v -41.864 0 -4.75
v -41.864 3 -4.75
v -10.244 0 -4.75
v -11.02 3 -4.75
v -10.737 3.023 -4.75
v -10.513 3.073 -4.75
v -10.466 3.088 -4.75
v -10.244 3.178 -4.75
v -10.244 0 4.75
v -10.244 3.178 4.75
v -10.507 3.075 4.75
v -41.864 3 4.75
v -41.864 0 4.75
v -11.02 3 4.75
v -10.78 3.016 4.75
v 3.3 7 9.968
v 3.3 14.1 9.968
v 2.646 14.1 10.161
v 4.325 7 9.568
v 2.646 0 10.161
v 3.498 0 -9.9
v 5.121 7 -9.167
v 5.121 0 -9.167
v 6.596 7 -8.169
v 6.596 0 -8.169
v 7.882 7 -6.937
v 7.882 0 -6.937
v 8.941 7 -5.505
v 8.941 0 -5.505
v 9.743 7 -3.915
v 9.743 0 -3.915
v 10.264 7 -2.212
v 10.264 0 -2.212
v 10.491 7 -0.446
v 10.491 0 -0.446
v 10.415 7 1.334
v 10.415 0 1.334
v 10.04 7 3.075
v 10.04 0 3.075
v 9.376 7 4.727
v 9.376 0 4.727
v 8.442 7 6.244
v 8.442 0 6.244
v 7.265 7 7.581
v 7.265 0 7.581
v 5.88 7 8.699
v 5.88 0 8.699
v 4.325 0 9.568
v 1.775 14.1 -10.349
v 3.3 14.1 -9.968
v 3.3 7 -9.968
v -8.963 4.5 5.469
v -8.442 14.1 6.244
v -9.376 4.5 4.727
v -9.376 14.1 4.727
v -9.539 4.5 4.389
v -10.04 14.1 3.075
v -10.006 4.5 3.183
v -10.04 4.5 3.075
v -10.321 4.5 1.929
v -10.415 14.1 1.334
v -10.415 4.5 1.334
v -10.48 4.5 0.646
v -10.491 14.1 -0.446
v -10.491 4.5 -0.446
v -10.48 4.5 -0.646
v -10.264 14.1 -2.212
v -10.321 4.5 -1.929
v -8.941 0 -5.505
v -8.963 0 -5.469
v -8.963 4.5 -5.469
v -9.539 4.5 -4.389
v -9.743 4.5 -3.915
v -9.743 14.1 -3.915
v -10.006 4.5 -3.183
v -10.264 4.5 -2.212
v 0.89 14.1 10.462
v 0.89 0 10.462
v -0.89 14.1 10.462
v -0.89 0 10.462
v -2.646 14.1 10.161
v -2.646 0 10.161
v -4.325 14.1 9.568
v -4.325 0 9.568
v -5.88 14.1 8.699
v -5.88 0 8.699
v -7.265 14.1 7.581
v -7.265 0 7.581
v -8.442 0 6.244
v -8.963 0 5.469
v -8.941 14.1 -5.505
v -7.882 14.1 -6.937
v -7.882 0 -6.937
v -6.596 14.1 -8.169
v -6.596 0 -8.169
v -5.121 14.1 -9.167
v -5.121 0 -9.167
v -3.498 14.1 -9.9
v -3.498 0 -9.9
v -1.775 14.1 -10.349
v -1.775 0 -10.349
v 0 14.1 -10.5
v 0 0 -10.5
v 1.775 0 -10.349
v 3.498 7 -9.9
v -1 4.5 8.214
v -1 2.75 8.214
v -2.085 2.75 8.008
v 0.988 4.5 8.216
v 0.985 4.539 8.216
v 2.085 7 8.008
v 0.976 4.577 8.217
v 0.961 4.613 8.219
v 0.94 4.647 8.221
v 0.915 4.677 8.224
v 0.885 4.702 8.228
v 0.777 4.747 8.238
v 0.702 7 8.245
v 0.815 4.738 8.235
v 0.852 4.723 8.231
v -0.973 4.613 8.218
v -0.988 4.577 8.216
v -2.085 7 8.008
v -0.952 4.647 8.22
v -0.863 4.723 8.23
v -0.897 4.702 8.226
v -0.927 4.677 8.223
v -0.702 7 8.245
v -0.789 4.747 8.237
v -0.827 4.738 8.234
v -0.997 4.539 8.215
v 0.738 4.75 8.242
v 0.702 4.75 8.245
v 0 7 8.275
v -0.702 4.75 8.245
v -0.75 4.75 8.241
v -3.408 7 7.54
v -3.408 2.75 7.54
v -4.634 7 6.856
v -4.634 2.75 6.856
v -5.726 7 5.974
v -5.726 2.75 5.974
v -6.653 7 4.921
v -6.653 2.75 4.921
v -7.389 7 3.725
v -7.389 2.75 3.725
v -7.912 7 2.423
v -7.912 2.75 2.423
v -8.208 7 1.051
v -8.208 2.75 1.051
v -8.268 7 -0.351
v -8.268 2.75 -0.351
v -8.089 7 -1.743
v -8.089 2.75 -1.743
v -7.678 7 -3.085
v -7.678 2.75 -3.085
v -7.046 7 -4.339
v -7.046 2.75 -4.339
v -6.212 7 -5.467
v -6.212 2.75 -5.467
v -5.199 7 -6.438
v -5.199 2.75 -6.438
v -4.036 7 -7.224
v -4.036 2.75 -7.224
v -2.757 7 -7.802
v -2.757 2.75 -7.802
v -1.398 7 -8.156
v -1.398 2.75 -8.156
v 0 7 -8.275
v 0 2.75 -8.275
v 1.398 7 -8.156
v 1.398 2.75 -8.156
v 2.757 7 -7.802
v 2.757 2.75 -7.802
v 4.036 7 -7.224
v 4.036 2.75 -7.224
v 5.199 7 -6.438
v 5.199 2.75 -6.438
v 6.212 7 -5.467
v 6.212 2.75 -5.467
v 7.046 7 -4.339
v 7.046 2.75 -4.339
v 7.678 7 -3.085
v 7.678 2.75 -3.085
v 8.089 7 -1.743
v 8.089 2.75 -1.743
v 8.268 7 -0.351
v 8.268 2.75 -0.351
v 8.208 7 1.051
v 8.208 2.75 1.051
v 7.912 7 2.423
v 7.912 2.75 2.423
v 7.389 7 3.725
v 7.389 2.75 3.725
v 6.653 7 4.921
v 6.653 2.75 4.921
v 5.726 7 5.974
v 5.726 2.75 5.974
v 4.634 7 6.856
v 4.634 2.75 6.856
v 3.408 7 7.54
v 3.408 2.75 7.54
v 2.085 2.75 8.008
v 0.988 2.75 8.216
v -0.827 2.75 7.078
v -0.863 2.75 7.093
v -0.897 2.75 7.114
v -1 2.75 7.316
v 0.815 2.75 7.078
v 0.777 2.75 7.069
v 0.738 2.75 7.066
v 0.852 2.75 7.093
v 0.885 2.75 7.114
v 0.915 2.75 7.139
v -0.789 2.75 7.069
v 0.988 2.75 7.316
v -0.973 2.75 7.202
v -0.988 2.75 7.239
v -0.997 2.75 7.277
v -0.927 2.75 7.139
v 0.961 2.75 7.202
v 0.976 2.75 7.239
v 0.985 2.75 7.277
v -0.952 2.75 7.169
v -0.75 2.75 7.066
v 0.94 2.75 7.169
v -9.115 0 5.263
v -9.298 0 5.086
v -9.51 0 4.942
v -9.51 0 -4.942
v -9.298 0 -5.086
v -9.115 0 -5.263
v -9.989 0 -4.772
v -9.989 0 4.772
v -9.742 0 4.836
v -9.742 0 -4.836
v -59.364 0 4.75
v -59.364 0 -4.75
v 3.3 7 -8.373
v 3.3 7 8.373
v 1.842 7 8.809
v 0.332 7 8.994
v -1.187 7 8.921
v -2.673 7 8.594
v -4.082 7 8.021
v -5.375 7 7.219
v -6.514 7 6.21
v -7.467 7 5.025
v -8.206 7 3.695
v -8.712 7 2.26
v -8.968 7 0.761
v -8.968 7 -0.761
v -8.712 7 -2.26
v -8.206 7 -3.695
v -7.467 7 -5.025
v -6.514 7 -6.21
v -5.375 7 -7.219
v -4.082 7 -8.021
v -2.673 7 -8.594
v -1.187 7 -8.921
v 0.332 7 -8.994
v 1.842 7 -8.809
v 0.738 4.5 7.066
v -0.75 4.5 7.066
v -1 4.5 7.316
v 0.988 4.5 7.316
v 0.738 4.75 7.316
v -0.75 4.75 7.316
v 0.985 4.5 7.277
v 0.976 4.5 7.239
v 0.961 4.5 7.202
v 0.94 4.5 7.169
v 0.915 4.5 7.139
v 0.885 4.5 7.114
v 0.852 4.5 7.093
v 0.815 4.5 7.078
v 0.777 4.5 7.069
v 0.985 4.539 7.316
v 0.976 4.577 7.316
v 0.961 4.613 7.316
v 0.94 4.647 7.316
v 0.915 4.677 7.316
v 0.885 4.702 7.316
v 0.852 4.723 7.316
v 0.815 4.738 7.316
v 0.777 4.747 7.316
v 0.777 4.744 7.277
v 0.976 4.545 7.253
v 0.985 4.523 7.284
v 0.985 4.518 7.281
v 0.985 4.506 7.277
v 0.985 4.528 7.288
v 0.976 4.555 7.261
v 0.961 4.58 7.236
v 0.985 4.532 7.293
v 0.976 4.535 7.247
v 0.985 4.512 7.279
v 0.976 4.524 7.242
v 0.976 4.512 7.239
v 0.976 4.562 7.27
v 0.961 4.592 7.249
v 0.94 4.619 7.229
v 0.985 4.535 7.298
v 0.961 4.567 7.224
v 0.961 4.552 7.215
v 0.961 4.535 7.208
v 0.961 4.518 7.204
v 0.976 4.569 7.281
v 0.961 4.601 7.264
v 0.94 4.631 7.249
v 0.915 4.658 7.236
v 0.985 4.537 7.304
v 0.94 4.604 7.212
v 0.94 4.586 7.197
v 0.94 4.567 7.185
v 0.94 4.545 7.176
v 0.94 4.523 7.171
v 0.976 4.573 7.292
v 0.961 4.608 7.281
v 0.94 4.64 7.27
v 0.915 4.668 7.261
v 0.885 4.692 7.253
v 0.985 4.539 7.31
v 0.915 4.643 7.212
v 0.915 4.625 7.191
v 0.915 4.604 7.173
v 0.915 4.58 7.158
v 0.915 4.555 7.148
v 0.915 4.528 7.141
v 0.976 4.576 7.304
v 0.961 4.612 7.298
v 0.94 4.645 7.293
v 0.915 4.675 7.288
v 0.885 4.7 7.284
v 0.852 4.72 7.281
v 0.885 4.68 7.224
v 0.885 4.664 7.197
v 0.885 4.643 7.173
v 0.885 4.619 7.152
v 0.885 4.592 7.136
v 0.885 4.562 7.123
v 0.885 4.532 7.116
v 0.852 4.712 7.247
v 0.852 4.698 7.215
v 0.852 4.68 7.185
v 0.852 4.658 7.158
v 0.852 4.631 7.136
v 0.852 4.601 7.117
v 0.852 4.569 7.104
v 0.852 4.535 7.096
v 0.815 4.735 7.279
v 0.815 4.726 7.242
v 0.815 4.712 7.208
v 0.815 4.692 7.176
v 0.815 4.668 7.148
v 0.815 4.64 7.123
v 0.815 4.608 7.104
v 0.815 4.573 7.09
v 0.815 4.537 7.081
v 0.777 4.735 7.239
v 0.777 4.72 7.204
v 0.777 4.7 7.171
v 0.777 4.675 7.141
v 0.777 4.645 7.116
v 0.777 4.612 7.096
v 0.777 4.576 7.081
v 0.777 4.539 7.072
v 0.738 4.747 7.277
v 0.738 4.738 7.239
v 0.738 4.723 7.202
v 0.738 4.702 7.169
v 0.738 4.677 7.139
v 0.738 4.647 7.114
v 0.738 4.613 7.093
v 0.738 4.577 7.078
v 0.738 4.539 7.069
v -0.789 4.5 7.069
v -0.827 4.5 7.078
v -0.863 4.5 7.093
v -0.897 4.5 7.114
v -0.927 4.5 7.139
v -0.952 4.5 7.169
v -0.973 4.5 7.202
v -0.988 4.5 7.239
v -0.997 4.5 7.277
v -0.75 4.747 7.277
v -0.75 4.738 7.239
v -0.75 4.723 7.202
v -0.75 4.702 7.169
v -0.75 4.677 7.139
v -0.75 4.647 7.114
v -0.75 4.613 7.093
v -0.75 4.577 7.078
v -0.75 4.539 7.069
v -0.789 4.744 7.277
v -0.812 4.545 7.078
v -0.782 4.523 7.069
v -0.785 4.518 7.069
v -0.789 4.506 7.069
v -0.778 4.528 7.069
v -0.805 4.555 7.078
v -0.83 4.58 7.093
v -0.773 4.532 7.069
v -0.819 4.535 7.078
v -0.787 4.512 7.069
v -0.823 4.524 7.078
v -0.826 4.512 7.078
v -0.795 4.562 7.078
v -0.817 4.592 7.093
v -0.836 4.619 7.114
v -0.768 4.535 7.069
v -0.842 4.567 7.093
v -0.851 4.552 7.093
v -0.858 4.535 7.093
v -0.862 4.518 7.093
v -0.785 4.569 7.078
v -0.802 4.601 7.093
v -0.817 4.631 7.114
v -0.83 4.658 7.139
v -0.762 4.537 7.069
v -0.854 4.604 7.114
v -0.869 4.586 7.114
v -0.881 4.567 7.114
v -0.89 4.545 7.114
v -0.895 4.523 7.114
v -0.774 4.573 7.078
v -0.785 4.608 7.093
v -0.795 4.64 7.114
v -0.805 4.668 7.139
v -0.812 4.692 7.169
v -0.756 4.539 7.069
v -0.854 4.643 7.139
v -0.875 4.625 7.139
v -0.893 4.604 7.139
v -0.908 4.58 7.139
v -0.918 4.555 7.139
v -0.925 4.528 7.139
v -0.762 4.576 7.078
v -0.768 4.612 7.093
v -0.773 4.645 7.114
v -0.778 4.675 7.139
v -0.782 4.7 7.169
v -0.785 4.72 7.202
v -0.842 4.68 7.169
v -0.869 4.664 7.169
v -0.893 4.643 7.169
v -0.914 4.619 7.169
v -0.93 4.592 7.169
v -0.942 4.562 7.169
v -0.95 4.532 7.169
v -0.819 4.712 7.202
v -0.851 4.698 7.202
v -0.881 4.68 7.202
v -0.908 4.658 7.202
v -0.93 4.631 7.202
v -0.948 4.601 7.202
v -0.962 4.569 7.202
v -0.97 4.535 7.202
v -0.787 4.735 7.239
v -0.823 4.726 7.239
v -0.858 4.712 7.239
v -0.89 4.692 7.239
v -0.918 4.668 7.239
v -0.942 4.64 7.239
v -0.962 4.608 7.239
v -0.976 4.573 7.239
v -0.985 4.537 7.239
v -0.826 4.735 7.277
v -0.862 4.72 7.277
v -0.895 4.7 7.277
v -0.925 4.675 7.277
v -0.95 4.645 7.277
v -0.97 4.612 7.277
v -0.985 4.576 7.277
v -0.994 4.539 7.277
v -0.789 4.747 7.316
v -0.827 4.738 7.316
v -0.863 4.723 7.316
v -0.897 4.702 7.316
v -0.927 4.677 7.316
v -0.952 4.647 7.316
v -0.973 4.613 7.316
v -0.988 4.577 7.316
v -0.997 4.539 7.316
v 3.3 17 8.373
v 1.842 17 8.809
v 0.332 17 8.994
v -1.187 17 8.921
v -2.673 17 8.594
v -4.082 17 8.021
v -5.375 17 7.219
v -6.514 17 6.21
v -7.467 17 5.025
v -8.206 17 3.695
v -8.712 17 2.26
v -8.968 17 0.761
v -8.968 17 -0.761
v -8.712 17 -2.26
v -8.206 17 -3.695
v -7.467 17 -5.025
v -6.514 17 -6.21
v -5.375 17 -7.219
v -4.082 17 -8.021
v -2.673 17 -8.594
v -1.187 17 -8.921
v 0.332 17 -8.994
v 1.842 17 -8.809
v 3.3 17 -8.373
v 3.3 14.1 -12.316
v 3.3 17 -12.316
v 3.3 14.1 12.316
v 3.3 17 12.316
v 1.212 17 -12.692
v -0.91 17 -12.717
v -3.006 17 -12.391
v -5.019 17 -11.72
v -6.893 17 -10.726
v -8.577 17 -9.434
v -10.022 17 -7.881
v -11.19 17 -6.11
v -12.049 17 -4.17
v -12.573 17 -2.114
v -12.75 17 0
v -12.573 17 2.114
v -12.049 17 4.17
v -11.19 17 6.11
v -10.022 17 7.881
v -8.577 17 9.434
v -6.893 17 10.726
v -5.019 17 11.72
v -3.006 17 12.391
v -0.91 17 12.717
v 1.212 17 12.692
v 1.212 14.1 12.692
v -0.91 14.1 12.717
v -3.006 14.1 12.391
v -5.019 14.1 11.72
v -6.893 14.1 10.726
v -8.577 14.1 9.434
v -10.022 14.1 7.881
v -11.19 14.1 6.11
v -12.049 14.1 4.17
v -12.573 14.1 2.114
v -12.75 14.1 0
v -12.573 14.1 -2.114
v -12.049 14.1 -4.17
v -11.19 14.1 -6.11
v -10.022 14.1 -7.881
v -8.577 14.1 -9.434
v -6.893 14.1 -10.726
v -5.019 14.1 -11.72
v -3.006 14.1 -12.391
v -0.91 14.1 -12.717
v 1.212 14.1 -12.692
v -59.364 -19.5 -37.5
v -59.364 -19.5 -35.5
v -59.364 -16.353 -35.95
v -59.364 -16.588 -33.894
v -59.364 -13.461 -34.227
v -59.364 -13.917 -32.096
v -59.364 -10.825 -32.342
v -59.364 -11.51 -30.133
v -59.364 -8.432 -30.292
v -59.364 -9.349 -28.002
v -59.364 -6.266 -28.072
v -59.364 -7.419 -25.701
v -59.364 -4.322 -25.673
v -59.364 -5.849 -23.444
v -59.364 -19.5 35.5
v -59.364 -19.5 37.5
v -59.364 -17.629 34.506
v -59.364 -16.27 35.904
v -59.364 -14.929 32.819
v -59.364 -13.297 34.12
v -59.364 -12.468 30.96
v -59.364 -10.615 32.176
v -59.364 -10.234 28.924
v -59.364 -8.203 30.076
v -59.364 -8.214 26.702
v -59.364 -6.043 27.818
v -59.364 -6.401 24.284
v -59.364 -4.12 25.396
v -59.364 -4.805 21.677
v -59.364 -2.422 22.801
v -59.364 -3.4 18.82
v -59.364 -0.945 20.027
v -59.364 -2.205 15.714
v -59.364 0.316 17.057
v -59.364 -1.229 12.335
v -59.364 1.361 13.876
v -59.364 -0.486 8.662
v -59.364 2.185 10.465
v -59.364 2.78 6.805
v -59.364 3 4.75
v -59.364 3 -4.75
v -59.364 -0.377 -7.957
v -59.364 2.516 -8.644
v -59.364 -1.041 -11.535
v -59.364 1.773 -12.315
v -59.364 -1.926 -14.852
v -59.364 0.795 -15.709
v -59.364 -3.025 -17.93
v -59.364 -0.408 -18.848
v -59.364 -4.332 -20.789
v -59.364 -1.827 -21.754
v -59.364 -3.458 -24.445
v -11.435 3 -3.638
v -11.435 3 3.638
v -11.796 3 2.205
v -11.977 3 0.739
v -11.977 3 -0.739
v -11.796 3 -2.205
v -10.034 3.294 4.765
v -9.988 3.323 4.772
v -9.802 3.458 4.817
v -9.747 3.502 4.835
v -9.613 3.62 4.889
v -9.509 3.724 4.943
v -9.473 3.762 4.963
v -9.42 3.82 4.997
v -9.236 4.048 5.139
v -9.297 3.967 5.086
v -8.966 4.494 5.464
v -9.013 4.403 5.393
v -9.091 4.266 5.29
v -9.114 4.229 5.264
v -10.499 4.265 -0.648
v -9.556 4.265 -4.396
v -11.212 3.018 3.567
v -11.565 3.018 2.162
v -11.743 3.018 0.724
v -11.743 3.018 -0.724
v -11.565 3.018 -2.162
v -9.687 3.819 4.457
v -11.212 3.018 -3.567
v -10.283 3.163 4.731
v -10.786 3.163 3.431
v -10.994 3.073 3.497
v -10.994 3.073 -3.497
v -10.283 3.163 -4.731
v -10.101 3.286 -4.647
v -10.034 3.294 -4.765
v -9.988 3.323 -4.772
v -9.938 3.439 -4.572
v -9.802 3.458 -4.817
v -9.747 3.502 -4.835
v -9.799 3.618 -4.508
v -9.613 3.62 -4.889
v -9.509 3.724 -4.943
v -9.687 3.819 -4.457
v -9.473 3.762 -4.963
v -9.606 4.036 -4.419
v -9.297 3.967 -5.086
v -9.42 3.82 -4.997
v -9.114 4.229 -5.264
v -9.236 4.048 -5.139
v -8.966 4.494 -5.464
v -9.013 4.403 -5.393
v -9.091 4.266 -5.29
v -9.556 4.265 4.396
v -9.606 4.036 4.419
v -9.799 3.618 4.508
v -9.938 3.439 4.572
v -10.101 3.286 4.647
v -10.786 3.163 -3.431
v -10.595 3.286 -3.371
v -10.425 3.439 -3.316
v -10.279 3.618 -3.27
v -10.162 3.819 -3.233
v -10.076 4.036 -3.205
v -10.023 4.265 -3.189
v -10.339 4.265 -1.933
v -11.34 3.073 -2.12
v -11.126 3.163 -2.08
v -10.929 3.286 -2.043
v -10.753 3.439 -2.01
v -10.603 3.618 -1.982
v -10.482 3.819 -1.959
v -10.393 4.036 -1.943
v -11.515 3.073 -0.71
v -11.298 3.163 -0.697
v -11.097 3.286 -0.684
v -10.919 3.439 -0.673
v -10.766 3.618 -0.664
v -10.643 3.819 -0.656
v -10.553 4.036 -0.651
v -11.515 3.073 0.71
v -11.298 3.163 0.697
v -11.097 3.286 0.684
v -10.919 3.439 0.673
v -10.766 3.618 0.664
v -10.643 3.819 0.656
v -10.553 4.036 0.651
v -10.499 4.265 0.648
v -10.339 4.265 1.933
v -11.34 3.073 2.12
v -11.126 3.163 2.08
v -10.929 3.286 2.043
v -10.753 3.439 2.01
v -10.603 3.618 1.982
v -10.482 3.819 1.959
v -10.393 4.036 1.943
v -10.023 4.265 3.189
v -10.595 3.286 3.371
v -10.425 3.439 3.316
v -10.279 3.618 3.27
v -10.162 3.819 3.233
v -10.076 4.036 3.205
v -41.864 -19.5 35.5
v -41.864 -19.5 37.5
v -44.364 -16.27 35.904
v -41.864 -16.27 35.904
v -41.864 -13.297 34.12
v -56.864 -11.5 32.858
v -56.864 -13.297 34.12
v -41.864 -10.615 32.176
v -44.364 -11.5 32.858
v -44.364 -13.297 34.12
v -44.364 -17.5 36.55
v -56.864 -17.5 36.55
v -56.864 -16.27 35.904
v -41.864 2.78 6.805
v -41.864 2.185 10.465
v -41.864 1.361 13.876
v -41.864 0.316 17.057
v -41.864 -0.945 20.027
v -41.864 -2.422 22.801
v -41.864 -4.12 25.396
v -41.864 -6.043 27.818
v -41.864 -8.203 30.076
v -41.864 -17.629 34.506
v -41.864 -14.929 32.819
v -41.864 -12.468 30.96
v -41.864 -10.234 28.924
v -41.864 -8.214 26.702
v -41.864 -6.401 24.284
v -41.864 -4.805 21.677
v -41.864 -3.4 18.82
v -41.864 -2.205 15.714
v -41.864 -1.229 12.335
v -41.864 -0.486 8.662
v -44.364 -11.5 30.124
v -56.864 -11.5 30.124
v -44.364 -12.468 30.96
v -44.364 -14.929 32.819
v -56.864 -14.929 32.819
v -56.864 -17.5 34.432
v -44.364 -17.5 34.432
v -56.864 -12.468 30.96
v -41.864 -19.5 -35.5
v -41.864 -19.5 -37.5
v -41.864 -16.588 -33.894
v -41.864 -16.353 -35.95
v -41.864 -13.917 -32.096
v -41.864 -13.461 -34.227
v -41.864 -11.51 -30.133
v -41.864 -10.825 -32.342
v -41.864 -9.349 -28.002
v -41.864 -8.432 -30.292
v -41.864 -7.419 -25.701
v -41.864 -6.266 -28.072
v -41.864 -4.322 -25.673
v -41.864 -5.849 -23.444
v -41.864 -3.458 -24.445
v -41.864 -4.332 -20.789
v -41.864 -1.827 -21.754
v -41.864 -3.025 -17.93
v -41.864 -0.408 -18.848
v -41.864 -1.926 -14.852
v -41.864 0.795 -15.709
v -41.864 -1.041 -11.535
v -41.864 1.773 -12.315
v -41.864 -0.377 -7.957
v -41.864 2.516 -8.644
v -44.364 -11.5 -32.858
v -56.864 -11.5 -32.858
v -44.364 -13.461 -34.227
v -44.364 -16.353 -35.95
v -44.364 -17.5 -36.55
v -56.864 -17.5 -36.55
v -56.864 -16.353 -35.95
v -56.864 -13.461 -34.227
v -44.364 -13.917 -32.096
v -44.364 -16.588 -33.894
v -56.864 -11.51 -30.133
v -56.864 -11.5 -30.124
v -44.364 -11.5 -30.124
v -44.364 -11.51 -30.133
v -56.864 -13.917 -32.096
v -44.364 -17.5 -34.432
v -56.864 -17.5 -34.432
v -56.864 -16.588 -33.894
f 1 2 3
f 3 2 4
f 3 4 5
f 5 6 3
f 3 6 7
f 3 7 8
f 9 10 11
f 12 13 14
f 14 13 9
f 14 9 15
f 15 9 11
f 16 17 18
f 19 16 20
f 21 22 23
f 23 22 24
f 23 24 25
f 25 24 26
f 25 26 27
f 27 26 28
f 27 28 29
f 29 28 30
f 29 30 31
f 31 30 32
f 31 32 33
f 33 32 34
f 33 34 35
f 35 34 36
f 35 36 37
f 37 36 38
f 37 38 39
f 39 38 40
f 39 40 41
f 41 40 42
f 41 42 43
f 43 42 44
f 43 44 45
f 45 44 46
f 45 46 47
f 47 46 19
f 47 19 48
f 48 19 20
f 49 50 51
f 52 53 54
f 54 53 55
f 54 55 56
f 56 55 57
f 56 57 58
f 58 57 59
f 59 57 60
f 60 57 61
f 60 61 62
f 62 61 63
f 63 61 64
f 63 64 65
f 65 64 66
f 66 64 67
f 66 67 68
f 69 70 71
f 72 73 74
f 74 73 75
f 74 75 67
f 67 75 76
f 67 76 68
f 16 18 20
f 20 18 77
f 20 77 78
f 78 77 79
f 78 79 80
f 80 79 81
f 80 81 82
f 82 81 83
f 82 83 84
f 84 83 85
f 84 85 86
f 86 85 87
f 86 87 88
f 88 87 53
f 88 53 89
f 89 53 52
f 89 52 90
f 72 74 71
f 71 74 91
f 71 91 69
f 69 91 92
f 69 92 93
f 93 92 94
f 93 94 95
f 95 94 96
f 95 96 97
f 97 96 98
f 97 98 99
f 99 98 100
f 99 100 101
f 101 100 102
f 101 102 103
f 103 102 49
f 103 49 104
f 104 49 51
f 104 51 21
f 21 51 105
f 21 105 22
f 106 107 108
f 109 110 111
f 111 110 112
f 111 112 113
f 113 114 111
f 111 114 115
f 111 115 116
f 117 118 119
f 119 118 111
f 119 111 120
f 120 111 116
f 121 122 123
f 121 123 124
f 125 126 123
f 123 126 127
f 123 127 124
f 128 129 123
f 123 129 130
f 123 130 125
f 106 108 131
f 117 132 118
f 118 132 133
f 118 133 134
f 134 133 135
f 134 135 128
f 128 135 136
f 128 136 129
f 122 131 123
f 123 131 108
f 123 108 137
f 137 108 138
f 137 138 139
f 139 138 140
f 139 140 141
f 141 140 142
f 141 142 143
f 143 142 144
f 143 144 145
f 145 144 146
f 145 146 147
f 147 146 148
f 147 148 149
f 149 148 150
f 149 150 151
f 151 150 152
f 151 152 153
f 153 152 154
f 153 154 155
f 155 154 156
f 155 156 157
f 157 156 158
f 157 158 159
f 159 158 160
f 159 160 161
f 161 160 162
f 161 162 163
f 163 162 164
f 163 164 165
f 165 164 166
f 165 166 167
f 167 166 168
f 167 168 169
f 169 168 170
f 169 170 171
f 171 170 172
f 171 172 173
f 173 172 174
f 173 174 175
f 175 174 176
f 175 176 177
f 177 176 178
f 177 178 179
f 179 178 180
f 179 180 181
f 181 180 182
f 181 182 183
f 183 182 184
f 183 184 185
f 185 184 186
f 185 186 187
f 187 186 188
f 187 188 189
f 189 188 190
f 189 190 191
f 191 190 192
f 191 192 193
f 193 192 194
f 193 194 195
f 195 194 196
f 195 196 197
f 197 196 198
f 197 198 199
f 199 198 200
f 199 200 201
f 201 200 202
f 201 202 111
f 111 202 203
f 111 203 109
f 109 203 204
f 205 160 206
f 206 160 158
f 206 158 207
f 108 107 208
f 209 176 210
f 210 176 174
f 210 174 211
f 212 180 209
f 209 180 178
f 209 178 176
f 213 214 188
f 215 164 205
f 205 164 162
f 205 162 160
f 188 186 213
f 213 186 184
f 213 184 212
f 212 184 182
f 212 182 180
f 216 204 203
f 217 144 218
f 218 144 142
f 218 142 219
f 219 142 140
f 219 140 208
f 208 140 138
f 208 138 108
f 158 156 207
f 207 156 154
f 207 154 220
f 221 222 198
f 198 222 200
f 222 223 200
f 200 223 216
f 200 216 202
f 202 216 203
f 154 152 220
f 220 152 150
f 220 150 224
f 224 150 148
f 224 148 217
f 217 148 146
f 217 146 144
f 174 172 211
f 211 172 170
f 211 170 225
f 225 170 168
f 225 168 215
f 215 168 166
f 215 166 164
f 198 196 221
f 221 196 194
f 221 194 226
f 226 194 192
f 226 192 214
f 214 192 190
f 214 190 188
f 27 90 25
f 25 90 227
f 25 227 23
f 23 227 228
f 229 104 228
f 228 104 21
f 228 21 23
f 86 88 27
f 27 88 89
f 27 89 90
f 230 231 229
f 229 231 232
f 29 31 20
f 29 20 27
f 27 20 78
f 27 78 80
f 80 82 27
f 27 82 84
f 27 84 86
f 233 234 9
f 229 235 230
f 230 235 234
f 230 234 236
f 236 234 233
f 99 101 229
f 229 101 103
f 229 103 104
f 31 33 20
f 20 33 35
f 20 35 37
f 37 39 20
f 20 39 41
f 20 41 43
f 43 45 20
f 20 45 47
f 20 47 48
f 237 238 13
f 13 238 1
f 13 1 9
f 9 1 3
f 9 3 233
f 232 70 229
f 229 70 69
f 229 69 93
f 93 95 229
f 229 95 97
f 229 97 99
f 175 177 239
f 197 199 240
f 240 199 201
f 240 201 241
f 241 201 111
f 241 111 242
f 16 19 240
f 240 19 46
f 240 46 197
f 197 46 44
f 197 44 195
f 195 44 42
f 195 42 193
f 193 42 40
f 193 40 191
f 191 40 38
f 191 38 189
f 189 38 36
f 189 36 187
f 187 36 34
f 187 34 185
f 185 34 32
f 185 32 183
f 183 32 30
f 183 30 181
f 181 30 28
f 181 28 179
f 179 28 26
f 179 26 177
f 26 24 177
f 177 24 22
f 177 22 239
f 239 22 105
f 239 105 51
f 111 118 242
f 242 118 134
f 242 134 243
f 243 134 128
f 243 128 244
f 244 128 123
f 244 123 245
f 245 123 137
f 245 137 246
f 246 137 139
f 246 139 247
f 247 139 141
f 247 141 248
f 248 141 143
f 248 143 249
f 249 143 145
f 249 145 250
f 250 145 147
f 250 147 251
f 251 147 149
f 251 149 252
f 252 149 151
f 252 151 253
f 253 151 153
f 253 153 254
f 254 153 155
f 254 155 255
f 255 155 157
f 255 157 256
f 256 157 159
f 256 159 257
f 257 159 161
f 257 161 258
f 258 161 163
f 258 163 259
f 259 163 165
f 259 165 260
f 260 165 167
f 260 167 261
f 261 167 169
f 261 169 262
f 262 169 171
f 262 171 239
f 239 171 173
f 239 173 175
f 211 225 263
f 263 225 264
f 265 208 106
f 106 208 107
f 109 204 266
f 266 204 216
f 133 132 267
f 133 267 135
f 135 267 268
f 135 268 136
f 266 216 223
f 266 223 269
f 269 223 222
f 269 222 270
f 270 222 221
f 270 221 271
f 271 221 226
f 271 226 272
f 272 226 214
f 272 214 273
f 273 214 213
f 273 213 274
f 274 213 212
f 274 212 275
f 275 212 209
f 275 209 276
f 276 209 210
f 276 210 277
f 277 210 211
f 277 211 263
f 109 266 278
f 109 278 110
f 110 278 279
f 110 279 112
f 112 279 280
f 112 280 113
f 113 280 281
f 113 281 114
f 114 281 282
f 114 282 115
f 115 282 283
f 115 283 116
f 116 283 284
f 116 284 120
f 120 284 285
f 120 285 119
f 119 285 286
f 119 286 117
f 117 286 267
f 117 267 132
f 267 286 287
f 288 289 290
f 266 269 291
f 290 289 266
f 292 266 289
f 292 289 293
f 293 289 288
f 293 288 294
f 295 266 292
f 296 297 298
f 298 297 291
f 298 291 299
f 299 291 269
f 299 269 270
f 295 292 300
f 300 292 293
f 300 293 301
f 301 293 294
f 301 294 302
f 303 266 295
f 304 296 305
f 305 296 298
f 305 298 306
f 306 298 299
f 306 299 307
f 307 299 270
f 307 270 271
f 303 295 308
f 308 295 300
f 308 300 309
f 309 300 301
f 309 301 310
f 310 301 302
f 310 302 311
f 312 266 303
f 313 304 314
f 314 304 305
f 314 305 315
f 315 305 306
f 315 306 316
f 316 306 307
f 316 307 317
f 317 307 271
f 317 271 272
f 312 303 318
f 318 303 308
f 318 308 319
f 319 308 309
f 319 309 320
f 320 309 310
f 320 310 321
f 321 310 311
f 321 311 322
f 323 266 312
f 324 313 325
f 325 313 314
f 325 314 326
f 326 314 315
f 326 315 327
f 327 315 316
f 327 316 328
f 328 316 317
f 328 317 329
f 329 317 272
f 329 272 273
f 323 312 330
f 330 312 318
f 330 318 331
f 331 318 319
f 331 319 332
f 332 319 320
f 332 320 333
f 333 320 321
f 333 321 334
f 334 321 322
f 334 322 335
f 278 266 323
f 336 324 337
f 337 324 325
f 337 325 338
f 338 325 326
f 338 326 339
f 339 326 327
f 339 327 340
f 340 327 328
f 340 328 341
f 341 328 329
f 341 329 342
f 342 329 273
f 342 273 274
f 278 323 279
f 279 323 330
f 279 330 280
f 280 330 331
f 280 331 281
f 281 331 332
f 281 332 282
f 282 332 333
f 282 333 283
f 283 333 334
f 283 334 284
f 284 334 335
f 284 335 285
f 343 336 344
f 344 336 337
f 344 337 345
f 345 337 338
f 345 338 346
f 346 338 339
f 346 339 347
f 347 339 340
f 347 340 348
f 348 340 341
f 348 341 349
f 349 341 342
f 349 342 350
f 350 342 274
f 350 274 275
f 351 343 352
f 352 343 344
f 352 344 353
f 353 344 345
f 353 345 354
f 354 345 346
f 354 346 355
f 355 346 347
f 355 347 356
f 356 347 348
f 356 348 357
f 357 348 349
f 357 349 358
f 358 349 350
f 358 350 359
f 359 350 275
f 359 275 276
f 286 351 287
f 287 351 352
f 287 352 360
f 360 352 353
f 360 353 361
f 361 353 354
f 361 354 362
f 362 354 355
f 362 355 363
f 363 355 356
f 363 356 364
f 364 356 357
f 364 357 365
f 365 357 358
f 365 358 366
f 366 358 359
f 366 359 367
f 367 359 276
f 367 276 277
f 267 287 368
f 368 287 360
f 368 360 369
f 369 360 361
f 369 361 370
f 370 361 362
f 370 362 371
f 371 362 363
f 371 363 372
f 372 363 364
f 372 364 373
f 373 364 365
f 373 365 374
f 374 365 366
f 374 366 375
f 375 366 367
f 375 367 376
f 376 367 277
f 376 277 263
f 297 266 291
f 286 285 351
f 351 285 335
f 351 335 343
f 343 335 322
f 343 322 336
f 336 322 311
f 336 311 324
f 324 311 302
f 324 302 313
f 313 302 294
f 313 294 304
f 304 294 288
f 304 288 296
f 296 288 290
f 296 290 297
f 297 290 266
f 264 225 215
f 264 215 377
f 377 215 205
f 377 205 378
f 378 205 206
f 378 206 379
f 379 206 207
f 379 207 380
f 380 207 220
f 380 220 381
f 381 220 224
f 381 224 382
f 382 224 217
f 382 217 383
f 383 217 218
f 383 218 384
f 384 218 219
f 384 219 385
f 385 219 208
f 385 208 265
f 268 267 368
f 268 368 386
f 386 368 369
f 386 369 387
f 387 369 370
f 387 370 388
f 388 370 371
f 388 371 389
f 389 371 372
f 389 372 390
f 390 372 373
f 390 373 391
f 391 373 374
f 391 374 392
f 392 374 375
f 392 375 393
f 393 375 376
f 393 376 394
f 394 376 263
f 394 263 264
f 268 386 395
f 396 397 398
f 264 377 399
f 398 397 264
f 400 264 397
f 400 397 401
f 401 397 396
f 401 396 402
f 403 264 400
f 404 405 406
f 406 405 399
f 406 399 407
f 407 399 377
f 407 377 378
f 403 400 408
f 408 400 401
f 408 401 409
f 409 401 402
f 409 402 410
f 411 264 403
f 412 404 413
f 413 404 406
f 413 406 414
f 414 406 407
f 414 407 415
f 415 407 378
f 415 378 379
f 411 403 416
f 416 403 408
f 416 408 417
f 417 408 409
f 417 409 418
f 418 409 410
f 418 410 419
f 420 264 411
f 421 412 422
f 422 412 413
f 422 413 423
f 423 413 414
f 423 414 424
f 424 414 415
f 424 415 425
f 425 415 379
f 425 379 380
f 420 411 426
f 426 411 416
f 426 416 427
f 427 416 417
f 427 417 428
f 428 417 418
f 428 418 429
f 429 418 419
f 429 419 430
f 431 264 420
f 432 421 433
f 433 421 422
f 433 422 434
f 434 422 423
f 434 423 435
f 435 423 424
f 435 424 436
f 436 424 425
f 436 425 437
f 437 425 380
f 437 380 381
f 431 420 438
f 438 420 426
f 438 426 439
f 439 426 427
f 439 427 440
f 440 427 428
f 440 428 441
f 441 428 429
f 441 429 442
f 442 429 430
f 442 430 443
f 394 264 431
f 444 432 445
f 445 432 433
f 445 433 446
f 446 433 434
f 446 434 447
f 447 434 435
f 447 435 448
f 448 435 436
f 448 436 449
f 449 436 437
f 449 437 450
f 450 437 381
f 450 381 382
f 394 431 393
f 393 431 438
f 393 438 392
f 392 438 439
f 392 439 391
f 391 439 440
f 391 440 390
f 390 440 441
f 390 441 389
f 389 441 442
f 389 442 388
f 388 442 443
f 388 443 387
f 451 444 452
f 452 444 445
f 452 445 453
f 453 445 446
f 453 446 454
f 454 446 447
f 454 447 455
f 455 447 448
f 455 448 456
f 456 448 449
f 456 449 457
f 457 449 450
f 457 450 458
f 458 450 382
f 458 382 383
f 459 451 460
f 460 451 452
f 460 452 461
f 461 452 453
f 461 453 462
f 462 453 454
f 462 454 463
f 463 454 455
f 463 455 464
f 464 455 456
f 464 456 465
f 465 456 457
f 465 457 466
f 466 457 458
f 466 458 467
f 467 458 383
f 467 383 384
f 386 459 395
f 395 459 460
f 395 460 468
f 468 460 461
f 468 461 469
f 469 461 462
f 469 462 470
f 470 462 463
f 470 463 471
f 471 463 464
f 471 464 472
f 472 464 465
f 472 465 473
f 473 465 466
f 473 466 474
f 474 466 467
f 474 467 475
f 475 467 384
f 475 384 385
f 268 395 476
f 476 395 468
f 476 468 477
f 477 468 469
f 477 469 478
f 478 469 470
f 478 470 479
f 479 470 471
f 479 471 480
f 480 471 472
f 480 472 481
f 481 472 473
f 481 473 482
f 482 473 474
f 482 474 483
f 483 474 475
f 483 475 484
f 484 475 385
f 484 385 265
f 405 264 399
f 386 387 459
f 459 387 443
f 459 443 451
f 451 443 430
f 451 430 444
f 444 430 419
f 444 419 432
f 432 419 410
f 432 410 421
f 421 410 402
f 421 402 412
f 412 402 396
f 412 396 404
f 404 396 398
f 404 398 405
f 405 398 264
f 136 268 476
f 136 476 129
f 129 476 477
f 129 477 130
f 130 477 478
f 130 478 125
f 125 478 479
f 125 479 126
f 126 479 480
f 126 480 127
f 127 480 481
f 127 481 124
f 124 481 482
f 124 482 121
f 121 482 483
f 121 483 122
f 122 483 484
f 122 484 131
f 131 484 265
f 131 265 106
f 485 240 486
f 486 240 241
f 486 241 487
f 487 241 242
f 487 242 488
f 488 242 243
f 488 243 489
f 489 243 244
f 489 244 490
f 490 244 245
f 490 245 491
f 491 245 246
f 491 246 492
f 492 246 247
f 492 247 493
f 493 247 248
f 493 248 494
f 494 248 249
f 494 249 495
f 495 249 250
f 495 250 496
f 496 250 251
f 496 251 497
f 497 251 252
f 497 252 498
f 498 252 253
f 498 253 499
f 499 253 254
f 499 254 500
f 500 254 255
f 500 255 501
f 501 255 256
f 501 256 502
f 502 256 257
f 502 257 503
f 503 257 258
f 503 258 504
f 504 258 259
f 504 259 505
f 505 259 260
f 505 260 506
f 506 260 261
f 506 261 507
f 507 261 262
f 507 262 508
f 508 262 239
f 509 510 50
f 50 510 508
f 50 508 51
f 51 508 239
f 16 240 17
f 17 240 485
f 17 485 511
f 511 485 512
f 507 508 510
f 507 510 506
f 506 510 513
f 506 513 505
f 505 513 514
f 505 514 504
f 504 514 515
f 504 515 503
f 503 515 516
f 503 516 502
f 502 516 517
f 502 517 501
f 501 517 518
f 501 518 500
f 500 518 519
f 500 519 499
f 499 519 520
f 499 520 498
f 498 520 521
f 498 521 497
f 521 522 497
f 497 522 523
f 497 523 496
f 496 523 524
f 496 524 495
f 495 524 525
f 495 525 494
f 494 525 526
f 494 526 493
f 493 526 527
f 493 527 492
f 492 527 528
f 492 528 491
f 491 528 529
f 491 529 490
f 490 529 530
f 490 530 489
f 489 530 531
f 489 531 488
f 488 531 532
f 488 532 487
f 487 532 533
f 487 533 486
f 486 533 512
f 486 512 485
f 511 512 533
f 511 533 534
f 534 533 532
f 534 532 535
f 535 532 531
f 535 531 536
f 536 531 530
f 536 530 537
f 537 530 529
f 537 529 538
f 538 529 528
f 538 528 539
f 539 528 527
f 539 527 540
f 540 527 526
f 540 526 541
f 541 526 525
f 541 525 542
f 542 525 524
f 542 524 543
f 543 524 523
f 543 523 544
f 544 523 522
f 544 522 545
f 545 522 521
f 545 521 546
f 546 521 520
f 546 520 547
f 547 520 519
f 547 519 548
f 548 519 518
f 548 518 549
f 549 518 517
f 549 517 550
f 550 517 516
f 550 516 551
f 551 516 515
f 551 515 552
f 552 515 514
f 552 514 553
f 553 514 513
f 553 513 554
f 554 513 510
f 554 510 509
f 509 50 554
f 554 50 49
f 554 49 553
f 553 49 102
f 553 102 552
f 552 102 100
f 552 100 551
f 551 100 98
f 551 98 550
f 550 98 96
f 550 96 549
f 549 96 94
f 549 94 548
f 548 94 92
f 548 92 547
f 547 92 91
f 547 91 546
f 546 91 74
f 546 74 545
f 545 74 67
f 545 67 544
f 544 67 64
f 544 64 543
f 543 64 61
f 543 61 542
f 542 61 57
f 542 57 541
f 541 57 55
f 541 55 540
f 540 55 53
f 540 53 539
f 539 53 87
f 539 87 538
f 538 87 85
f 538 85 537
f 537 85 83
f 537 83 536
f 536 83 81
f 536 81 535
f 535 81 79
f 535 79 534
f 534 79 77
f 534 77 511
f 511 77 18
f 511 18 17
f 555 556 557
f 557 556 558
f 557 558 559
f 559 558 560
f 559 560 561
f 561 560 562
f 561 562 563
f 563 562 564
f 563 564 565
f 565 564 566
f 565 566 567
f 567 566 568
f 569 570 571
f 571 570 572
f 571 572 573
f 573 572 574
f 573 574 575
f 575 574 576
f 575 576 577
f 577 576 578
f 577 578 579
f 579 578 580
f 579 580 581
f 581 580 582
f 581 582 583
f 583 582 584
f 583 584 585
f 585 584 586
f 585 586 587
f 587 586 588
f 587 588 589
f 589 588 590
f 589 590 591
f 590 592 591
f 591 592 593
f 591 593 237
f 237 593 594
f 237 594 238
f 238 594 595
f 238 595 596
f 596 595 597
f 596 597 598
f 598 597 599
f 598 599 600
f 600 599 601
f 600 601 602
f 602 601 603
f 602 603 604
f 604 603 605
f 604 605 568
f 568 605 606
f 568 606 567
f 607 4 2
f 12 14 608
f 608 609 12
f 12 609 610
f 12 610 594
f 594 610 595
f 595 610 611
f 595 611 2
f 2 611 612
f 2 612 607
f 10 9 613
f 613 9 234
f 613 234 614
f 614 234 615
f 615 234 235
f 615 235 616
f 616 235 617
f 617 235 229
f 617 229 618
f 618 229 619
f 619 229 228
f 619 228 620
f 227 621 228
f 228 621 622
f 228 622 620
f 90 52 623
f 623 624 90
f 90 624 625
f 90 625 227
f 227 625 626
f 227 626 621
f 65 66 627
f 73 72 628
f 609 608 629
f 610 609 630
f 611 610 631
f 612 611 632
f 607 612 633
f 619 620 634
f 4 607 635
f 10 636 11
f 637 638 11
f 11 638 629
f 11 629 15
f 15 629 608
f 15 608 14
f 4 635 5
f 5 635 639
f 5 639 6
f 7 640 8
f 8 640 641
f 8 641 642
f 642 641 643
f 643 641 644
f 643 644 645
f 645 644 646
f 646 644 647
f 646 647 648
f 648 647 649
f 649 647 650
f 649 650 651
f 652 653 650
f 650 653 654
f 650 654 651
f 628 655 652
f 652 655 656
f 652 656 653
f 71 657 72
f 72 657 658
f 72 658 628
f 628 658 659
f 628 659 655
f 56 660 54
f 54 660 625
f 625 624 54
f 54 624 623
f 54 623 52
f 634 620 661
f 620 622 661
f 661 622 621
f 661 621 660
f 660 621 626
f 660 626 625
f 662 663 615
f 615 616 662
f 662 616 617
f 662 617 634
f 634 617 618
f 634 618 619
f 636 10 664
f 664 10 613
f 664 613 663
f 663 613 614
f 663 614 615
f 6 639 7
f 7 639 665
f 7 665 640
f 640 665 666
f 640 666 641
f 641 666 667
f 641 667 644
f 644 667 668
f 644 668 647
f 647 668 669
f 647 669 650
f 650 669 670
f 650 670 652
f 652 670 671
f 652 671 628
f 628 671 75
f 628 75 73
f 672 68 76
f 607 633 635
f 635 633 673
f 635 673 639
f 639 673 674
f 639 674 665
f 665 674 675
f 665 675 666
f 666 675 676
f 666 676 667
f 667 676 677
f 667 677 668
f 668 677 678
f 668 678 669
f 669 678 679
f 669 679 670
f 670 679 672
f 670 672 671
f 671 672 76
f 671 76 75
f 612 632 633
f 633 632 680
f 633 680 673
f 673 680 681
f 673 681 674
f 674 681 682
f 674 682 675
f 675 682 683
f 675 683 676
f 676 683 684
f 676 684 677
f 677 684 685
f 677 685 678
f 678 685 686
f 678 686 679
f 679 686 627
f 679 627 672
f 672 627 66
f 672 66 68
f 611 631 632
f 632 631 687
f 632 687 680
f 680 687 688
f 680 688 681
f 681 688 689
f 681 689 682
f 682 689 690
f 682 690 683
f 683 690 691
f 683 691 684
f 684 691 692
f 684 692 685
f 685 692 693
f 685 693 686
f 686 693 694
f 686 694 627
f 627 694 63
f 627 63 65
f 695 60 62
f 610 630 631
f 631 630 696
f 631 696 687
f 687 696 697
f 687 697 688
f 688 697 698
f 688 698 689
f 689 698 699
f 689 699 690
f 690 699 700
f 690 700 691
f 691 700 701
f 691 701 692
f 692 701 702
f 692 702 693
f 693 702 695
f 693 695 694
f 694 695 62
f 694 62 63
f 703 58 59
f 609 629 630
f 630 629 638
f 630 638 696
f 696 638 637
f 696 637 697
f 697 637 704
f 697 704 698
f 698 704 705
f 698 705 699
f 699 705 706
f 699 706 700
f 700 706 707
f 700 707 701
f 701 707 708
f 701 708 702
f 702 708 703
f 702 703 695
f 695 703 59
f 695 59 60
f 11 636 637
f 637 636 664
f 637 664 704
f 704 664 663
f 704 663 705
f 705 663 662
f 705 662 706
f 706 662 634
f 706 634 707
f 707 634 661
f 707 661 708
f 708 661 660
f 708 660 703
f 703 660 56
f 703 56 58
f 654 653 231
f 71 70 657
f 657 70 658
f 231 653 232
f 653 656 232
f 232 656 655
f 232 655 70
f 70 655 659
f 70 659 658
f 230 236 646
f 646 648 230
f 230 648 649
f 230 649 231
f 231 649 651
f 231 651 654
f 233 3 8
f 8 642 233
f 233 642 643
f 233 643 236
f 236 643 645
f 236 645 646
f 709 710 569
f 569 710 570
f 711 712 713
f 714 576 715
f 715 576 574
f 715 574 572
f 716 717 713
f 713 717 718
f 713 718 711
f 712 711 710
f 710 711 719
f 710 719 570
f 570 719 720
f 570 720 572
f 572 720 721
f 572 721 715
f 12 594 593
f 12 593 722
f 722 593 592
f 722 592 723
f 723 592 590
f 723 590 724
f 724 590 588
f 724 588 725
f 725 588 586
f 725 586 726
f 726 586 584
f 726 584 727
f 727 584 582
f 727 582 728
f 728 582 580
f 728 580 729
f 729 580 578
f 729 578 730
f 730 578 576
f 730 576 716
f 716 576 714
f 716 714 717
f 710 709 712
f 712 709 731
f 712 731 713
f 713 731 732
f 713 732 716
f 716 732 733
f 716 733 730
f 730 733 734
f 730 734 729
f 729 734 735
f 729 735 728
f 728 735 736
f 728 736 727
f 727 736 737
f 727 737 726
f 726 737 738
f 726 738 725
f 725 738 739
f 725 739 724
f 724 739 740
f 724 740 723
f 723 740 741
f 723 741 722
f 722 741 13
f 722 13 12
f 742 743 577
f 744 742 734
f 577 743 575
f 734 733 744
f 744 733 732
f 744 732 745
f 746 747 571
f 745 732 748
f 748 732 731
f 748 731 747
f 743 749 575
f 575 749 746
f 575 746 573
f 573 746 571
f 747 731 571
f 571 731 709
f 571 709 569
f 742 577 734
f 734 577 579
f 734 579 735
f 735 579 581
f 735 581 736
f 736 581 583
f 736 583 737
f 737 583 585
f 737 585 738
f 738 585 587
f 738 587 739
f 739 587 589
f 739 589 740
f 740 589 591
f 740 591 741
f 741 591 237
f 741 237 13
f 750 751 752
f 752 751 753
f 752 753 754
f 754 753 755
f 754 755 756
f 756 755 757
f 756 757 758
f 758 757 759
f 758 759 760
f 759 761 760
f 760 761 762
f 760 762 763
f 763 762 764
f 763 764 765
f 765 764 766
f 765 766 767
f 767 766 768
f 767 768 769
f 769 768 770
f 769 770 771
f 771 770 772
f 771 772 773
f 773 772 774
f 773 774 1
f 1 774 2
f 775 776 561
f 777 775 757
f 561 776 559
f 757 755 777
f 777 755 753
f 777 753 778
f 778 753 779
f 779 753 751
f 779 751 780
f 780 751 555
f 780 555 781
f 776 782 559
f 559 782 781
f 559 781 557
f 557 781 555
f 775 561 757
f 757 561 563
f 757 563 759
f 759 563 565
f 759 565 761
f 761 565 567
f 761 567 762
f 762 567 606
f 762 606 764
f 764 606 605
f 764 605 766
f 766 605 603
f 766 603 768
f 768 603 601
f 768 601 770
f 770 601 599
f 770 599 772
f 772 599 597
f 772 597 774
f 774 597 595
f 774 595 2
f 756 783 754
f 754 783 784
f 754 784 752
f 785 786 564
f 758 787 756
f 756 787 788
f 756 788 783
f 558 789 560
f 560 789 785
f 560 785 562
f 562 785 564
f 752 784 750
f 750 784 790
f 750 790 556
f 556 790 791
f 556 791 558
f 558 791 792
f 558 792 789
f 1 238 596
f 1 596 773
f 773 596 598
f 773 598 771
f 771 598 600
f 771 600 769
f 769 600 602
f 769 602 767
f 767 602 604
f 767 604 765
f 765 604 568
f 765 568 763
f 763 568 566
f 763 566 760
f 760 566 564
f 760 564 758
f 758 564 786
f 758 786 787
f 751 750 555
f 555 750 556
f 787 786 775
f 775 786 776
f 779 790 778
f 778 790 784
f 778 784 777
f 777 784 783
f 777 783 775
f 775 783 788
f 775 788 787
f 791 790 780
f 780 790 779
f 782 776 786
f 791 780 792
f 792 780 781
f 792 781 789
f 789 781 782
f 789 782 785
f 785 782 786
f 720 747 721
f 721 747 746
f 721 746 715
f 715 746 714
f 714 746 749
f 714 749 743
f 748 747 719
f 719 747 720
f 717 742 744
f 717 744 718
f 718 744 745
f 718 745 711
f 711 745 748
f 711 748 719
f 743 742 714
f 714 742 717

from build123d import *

# Parameters (mm, degrees)
F_0_1MM_FIT_FOR_POT_R   = 10.5
BOSS_EXTRUDE1_DEPTH     = 2.75
SKETCH4_R               = 10.5
SKETCH4_R_2             = 8.275
BOSS_EXTRUDE2_DEPTH     = 4.25
BOSS_EXTRUDE3_DEPTH     = 2
FILLET1_R               = 0.25
BOSS_EXTRUDE6_DEPTH     = 10
BOSS_EXTRUDE7_DEPTH     = 2.9
BOSS_EXTRUDE8_DEPTH     = 3
FILLET2_R               = 1.5
BOSS_EXTRUDE9_DEPTH     = 17.5
SKETCH11_W              = 12.5
SKETCH11_H              = 6
CUT_EXTRUDE1_DEPTH      = 76.428217957
CUT_EXTRUDE1_DEPTH_BACK = 76.428217957


with BuildPart() as part:
    # 0.1mm fit for pot → Boss-Extrude1 (new body)
    with BuildSketch(Plane(origin=(0, 0, 0), x_dir=(1, 0, 0), z_dir=(0, 1, 0))):
        with Locations(Location((0, 0, 0), (0, 0, 270))):
            Circle(F_0_1MM_FIT_FOR_POT_R)
    extrude(amount=BOSS_EXTRUDE1_DEPTH)

    # Sketch4 → Boss-Extrude2 (add)
    with BuildSketch(Plane(origin=(0, 2.75, 0), x_dir=(1, 0, 0), z_dir=(0, 1, 0))):
        with Locations(Location((0, 0, 0), (0, 0, 270))):
            Circle(SKETCH4_R)
        with Locations(Location((0, 0, 0), (0, 0, 270))):
            Circle(SKETCH4_R_2, mode=Mode.SUBTRACT)
    extrude(amount=BOSS_EXTRUDE2_DEPTH)

    # Sketch5 → Boss-Extrude3 (add)
    with BuildSketch(Plane(origin=(0, 2.75, 0), x_dir=(1, 0, 0), z_dir=(0, 1, 0))):
        with BuildLine():
            Line((-1, -8.214354813), (-1, -7.065799598))
            Line((-1, -7.065799598), (0.988059701, -7.065799598))
            Line((0.988059701, -7.065799598), (0.988059701, -8.215799598))
            ThreePointArc((0.988059701, -8.215799598), (-0.006013695, -8.274997815), (-1, -8.214354813))
        make_face()
    extrude(amount=BOSS_EXTRUDE3_DEPTH)

    # Fillet1
    fillet1_edges = [part.edges().sort_by_distance(p)[0] for p in [
        (0.988059701, 3.75, 7.065799598),
        (-1, 3.75, 7.065799598),
        (-0.005970149, 4.75, 7.065799598),
        (-1, 4.75, 7.640077205),
        (0.988059701, 4.75, 7.640799598),
    ]]
    fillet(fillet1_edges, radius=FILLET1_R)

    # Sketch7 → Boss-Extrude6 (add)
    with BuildSketch(Plane(origin=(0, 7, 0), x_dir=(1, 0, 0), z_dir=(0, 1, 0))):
        with BuildLine():
            Line((3.299602194, 9.968080325), (3.299602194, 8.373328213))
            ThreePointArc((3.299602194, 8.373328213), (-9, 0), (3.299602194, -8.373328213))
            Line((3.299602194, -8.373328213), (3.299602194, -9.968080325))
            ThreePointArc((3.299602194, -9.968080325), (-10.5, 0), (3.299602194, 9.968080325))
        make_face()
    extrude(amount=BOSS_EXTRUDE6_DEPTH)

    # Sketch8 → Boss-Extrude7 (add)
    with BuildSketch(Plane(origin=(0, 17, 0), x_dir=(1, 0, 0), z_dir=(0, 1, 0))):
        with BuildLine():
            Line((3.299602194, 12.315645552), (3.299602194, 9.968080325))
            ThreePointArc((3.299602194, 9.968080325), (-10.5, 0), (3.299602194, -9.968080325))
            Line((3.299602194, -9.968080325), (3.299602194, -12.315645552))
            ThreePointArc((3.299602194, -12.315645552), (-12.75, 0), (3.299602194, 12.315645552))
        make_face()
    extrude(amount=-BOSS_EXTRUDE7_DEPTH)

    # Sketch9 → Boss-Extrude8 (add)
    with BuildSketch(Plane.XZ):
        with BuildLine():
            Line((-9.3641604, 4.75), (-59.3641604, 4.75))
            Line((-59.3641604, 4.75), (-59.3641604, -4.75))
            Line((-59.3641604, -4.75), (-9.3641604, -4.75))
            ThreePointArc((-9.3641604, -4.75), (-10.5, 0), (-9.3641604, 4.75))
        make_face()
    extrude(amount=-BOSS_EXTRUDE8_DEPTH)

    # Fillet2
    fillet2_edges = [part.edges().sort_by_distance(p)[0] for p in [
        (-10.5, 3, 0),
        (-9.3641604, 1.5, 4.75),
        (-9.3641604, 1.5, -4.75),
    ]]
    fillet(fillet2_edges, radius=FILLET2_R)

    # Sketch10 → Boss-Extrude9 (add)
    with BuildSketch(Plane.ZY.offset(59.3641604)):
        with BuildLine():
            Line((-37.5, -19.5), (-35.5, -19.5))
            add(Edge.make_bspline(
                [(-4.75, 0), (-26.762186457, -1.948698647), (-35.5, -19.5)],
                knots=[0.548592822, 0.548592822, 0.548592822, 1, 1, 1], degree=2))
            Line((-4.75, 0), (4.75, 0))
            add(Edge.make_bspline(
                [(35.5, -19.5), (26.762186461, -1.948698647), (4.75, 0)],
                knots=[0, 0, 0, 0.451407178, 0.451407178, 0.451407178], degree=2))
            Line((35.5, -19.5), (37.5, -19.5))
            add(Edge.make_bspline(
                [(4.75, 3), (28.386779804, 0.912348176), (37.5, -19.5)],
                knots=[0.545557352, 0.545557352, 0.545557352, 1, 1, 1], degree=2))
            Line((4.75, 3), (-4.75, 3))
            add(Edge.make_bspline(
                [(-37.5, -19.5), (-28.386779803, 0.912348176), (-4.75, 3)],
                knots=[0, 0, 0, 0.454442648, 0.454442648, 0.454442648], degree=2))
        make_face()
    extrude(amount=-BOSS_EXTRUDE9_DEPTH)

    # Sketch11 → Cut-Extrude1 (cut, two sides)
    with BuildSketch(Plane(origin=(0, 0, -4.75), x_dir=(-1, 0, 0), z_dir=(0, 0, -1))) as cut_extrude1_sk:
        with Locations((50.6141604, -14.5)):
            Rectangle(SKETCH11_W, SKETCH11_H)
    extrude(amount=CUT_EXTRUDE1_DEPTH, mode=Mode.SUBTRACT)
    extrude(cut_extrude1_sk.sketch, amount=-CUT_EXTRUDE1_DEPTH_BACK, mode=Mode.SUBTRACT)


solid = part.part
